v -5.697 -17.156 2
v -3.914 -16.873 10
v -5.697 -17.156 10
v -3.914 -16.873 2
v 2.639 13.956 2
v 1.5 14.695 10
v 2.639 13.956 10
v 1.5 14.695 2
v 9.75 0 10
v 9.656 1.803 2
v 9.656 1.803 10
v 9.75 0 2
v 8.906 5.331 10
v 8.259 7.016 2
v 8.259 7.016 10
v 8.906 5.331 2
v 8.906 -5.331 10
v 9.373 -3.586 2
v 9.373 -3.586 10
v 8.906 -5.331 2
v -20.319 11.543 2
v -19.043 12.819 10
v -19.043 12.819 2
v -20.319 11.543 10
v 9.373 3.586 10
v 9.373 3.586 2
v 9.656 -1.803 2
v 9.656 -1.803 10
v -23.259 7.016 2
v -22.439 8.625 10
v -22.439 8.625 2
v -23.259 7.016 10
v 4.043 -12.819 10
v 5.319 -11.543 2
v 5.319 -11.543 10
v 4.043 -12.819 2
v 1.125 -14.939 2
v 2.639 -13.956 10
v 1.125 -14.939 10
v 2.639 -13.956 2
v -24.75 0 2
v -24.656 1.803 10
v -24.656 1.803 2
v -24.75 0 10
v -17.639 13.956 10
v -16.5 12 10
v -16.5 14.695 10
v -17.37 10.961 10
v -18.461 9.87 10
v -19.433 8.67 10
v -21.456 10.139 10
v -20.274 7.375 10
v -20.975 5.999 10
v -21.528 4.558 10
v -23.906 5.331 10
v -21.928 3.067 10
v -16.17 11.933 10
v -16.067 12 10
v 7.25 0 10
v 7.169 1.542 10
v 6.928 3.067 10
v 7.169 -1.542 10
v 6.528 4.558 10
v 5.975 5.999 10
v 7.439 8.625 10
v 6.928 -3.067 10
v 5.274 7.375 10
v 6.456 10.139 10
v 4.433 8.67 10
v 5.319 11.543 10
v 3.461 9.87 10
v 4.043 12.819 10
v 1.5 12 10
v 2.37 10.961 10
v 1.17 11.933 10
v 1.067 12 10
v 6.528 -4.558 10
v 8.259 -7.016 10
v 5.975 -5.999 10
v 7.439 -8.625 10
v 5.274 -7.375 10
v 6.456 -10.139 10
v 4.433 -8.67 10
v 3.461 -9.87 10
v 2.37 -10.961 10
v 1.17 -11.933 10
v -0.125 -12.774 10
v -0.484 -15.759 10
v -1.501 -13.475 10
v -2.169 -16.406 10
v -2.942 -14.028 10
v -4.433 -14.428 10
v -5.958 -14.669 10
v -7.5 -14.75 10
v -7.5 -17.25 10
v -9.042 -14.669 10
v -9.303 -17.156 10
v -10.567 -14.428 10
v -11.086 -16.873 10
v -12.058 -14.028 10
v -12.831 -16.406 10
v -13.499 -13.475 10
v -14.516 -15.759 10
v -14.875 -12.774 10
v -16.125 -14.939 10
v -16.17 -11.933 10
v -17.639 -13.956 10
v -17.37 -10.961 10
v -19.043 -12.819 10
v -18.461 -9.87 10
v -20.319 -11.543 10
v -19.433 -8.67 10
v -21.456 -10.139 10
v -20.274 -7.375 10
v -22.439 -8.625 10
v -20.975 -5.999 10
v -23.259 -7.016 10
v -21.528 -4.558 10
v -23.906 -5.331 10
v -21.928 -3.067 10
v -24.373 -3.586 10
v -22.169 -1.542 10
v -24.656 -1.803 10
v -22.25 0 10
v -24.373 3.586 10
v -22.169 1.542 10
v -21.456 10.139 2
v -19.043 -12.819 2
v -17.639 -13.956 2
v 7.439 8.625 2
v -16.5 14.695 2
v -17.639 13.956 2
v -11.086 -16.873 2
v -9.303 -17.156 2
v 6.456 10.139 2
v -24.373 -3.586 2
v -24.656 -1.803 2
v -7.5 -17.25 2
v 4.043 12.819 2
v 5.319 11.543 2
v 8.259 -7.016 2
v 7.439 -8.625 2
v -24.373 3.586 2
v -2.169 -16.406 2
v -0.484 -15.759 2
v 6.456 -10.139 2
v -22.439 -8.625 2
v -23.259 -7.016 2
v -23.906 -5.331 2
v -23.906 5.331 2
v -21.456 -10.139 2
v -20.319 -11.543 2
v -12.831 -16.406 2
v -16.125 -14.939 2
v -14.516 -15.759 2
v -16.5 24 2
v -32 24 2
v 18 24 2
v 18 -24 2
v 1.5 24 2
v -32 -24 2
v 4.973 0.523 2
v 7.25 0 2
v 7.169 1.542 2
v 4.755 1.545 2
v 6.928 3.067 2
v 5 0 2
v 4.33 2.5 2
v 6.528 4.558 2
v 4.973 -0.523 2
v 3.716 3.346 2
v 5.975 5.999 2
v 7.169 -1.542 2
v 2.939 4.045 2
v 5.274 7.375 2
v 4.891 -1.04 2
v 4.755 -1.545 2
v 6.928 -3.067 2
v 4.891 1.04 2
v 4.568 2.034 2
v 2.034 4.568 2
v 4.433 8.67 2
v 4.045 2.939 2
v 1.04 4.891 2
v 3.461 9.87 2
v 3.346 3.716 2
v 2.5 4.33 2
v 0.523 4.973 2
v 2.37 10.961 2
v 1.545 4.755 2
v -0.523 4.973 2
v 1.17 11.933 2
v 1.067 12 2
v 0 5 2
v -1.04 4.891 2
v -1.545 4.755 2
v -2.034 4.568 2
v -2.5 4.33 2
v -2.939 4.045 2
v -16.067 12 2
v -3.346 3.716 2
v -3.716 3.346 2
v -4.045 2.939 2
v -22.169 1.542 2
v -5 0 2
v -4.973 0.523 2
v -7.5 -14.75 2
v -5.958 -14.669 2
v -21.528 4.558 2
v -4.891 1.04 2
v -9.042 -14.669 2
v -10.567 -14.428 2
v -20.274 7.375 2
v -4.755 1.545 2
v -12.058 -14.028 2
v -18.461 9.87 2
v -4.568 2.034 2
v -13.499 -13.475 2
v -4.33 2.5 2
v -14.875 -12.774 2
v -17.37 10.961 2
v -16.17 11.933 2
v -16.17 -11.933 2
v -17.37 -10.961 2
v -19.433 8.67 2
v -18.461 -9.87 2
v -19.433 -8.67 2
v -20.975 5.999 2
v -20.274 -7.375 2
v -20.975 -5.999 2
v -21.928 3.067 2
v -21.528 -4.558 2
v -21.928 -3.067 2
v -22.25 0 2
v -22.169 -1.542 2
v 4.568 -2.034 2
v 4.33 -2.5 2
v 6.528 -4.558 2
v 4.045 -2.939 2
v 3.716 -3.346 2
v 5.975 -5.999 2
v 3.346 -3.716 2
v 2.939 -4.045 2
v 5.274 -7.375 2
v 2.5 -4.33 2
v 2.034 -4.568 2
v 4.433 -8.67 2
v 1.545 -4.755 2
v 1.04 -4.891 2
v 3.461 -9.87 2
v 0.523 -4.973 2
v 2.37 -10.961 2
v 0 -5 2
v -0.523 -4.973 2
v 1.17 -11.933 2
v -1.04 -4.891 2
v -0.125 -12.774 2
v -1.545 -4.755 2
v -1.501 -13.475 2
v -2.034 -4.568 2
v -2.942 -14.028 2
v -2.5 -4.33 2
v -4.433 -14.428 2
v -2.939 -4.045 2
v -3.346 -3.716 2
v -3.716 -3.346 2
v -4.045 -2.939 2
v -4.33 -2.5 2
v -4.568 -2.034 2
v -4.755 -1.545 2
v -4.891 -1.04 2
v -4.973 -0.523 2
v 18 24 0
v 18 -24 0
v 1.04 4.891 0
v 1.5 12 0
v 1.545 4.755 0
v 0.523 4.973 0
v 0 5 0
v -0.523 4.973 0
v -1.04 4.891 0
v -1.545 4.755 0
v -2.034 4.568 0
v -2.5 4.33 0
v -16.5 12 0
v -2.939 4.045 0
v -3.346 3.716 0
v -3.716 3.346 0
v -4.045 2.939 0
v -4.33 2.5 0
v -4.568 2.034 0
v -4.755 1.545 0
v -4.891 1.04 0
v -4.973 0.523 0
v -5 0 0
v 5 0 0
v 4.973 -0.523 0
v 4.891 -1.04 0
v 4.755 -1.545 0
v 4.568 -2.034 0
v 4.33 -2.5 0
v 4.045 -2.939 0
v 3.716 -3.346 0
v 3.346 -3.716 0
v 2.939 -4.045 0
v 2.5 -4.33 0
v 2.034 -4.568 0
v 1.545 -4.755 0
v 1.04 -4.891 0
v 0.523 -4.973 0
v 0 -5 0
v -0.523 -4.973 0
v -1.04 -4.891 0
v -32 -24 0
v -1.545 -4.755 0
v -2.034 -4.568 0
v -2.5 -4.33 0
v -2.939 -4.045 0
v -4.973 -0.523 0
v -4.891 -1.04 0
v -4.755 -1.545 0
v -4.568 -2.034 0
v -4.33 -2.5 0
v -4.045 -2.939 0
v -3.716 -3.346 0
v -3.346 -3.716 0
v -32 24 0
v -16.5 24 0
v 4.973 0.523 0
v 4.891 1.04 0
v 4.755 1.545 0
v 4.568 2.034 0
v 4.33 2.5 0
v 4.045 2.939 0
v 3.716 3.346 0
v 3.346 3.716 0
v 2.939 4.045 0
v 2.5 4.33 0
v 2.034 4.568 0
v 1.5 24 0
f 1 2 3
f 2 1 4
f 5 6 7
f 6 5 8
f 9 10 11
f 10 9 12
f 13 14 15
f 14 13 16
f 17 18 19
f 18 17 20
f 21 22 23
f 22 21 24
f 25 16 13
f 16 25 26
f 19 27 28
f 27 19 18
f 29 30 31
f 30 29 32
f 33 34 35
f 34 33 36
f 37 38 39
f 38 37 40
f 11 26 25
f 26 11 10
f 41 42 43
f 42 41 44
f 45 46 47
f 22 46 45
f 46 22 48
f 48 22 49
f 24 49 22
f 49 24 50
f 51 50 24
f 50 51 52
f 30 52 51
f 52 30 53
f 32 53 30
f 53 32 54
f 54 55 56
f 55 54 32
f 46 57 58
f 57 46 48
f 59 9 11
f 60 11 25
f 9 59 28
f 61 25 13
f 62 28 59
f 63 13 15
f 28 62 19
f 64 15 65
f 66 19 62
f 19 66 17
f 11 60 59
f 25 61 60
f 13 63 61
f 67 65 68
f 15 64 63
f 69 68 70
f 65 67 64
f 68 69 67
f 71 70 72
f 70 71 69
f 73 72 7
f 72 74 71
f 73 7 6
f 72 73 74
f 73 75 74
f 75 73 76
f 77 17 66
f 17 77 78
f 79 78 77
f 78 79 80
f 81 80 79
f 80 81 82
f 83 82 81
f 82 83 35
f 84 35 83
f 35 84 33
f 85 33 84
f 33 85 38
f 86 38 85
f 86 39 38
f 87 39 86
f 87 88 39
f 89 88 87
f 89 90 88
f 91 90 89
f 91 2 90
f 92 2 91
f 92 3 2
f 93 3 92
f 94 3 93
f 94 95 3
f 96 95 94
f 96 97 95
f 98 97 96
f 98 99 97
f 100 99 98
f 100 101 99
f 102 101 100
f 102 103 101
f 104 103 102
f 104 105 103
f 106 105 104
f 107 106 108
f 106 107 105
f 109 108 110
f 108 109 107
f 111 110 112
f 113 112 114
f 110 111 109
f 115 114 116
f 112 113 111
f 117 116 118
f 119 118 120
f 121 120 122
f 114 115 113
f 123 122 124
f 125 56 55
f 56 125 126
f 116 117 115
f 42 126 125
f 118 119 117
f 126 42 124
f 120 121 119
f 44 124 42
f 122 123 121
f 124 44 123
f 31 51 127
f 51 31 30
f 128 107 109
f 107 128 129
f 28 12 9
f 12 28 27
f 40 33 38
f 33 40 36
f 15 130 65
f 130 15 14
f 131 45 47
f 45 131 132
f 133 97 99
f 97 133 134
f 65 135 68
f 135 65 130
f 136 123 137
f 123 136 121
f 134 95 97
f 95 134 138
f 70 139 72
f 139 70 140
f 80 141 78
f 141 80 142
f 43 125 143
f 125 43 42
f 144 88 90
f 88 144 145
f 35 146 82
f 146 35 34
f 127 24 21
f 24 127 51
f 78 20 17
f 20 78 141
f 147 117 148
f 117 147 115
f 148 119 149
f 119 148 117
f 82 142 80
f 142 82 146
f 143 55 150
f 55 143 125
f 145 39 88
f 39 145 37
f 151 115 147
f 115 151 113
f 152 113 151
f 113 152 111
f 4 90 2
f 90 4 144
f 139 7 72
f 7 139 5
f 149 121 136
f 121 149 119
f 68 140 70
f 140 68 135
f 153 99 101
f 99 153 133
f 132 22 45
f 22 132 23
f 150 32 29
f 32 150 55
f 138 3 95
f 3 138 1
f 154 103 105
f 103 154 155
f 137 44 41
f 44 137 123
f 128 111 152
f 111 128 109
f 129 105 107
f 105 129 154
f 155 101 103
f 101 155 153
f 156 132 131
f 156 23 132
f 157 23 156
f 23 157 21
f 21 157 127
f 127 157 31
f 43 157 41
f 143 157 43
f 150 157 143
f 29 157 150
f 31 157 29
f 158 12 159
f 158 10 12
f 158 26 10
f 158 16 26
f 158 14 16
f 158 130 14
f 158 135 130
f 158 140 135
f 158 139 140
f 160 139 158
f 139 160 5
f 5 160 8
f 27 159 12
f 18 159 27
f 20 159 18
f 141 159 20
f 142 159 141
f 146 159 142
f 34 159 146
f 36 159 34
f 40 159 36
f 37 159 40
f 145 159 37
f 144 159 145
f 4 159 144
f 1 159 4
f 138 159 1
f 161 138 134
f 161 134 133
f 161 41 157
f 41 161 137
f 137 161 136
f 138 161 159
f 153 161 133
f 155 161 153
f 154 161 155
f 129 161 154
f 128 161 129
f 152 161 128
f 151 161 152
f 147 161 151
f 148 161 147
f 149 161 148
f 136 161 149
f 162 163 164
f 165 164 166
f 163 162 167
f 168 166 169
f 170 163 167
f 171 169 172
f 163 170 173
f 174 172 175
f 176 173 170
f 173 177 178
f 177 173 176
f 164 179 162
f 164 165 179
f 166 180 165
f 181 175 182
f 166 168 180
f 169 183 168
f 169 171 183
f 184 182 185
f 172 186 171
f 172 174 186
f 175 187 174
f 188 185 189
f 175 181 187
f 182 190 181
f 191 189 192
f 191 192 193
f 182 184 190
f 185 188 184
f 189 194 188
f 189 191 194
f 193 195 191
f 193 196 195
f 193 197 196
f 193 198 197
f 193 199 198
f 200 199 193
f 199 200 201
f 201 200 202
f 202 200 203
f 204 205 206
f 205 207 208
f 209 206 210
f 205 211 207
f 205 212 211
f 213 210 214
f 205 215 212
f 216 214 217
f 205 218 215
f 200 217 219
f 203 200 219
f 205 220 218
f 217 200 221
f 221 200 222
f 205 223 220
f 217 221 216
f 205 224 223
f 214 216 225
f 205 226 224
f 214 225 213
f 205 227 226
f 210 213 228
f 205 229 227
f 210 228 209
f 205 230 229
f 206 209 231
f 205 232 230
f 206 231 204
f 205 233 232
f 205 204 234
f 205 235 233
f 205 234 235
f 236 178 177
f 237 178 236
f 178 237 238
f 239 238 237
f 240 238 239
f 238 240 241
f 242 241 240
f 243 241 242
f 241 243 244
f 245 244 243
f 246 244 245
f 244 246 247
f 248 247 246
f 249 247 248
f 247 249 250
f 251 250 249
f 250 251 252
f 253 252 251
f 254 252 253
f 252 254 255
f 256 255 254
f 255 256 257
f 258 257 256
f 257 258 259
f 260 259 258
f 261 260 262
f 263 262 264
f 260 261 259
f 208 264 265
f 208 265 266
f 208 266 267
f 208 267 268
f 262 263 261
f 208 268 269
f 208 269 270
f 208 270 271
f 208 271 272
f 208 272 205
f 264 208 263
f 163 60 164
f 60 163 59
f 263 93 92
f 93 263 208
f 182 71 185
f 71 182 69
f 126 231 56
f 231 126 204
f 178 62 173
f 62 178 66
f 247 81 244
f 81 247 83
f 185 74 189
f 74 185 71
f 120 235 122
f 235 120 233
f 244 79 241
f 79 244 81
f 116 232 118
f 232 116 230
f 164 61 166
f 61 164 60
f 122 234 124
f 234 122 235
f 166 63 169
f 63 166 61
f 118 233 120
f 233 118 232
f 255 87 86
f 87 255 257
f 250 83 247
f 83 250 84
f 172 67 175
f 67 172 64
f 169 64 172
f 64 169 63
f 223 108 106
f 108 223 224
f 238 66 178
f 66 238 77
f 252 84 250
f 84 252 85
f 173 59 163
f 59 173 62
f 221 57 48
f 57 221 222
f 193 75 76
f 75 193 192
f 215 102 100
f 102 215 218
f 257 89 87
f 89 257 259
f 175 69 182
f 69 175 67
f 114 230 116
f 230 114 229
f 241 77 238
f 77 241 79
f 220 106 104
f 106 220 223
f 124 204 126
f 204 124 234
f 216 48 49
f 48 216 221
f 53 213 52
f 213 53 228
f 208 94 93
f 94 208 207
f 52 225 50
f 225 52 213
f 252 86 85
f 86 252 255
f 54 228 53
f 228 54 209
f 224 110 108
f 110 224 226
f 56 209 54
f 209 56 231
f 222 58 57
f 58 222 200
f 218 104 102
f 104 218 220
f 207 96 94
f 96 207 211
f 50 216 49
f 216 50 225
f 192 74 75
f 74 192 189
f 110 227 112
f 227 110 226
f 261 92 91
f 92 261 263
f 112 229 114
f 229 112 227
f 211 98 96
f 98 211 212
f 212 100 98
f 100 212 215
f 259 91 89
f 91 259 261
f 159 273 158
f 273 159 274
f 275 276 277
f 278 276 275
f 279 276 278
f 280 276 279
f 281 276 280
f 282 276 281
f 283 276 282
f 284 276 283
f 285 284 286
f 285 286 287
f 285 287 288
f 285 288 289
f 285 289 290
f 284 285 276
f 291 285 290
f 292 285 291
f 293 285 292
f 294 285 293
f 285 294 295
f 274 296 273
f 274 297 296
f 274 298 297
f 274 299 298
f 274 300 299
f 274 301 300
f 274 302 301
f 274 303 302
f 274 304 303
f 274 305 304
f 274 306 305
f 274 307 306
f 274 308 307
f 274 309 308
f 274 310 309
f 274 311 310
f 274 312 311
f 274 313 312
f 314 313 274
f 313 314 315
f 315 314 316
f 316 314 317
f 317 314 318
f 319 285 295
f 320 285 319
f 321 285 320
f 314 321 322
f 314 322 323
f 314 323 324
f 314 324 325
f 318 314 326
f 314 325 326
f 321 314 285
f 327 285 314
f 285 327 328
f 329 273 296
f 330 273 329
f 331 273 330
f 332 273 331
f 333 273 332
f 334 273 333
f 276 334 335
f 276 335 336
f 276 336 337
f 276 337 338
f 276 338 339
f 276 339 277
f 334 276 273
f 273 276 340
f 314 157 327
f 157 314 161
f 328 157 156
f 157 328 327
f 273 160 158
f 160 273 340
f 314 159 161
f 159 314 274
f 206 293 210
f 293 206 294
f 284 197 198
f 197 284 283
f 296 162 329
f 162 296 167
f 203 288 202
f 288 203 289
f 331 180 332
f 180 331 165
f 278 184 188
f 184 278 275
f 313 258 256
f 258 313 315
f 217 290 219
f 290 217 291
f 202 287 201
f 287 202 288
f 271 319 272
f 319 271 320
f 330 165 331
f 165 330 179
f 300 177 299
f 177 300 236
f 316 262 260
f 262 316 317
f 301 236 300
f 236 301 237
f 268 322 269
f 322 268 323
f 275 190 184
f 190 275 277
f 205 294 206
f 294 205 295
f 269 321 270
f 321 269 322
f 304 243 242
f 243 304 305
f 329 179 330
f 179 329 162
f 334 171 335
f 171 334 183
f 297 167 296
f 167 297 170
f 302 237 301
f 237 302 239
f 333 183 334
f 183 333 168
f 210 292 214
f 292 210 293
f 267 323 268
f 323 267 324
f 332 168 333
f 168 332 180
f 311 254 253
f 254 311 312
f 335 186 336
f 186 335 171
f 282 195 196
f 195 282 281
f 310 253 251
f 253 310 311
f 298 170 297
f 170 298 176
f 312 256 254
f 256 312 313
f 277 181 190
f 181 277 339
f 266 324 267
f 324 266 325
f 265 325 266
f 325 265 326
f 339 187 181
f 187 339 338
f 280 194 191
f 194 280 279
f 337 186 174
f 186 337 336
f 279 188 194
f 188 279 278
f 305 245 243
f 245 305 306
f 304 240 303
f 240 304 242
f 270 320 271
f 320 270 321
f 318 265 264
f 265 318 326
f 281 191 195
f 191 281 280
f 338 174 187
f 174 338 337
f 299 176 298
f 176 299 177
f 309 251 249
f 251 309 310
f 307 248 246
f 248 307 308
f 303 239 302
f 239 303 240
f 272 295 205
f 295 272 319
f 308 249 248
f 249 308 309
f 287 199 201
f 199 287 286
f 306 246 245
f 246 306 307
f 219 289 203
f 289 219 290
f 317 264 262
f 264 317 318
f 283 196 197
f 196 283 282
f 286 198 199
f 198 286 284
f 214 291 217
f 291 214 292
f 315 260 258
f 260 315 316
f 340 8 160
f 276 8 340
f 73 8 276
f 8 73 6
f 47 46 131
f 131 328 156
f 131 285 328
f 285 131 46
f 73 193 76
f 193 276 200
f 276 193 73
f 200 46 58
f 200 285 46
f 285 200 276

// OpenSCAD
/*
  Owned-motor collar and lead-exit coupon.

  Reproduces the mid-plate's Ø34.5 / Ø29.5 x 8mm locating collar, 2mm
  supporting floor, Ø10 rear-bearing/shaft relief, and the enlarged +Y wire
  notch. Place the motor can on the coupon with its blue lead housing toward
  the notch. It must sit flat without pinching the five wires or forcing the
  housing against the ring.
*/

$fn = 60;
plate_h = 2.0;
motor_x_offset = -7.5;

module coupon() {
    difference() {
        union() {
            translate([-32, -24, 0]) cube([50, 48, plate_h]);
            translate([motor_x_offset, 0, plate_h])
                difference() {
                    cylinder(d=34.5, h=8);
                    translate([0,0,-1]) cylinder(d=29.5, h=10);
                }
        }

        translate([0, 0, -1]) cylinder(d=10, h=plate_h + 2);
        translate([motor_x_offset - 9, 12, -1]) cube([18, 20, 12]);
    }
}

coupon();
